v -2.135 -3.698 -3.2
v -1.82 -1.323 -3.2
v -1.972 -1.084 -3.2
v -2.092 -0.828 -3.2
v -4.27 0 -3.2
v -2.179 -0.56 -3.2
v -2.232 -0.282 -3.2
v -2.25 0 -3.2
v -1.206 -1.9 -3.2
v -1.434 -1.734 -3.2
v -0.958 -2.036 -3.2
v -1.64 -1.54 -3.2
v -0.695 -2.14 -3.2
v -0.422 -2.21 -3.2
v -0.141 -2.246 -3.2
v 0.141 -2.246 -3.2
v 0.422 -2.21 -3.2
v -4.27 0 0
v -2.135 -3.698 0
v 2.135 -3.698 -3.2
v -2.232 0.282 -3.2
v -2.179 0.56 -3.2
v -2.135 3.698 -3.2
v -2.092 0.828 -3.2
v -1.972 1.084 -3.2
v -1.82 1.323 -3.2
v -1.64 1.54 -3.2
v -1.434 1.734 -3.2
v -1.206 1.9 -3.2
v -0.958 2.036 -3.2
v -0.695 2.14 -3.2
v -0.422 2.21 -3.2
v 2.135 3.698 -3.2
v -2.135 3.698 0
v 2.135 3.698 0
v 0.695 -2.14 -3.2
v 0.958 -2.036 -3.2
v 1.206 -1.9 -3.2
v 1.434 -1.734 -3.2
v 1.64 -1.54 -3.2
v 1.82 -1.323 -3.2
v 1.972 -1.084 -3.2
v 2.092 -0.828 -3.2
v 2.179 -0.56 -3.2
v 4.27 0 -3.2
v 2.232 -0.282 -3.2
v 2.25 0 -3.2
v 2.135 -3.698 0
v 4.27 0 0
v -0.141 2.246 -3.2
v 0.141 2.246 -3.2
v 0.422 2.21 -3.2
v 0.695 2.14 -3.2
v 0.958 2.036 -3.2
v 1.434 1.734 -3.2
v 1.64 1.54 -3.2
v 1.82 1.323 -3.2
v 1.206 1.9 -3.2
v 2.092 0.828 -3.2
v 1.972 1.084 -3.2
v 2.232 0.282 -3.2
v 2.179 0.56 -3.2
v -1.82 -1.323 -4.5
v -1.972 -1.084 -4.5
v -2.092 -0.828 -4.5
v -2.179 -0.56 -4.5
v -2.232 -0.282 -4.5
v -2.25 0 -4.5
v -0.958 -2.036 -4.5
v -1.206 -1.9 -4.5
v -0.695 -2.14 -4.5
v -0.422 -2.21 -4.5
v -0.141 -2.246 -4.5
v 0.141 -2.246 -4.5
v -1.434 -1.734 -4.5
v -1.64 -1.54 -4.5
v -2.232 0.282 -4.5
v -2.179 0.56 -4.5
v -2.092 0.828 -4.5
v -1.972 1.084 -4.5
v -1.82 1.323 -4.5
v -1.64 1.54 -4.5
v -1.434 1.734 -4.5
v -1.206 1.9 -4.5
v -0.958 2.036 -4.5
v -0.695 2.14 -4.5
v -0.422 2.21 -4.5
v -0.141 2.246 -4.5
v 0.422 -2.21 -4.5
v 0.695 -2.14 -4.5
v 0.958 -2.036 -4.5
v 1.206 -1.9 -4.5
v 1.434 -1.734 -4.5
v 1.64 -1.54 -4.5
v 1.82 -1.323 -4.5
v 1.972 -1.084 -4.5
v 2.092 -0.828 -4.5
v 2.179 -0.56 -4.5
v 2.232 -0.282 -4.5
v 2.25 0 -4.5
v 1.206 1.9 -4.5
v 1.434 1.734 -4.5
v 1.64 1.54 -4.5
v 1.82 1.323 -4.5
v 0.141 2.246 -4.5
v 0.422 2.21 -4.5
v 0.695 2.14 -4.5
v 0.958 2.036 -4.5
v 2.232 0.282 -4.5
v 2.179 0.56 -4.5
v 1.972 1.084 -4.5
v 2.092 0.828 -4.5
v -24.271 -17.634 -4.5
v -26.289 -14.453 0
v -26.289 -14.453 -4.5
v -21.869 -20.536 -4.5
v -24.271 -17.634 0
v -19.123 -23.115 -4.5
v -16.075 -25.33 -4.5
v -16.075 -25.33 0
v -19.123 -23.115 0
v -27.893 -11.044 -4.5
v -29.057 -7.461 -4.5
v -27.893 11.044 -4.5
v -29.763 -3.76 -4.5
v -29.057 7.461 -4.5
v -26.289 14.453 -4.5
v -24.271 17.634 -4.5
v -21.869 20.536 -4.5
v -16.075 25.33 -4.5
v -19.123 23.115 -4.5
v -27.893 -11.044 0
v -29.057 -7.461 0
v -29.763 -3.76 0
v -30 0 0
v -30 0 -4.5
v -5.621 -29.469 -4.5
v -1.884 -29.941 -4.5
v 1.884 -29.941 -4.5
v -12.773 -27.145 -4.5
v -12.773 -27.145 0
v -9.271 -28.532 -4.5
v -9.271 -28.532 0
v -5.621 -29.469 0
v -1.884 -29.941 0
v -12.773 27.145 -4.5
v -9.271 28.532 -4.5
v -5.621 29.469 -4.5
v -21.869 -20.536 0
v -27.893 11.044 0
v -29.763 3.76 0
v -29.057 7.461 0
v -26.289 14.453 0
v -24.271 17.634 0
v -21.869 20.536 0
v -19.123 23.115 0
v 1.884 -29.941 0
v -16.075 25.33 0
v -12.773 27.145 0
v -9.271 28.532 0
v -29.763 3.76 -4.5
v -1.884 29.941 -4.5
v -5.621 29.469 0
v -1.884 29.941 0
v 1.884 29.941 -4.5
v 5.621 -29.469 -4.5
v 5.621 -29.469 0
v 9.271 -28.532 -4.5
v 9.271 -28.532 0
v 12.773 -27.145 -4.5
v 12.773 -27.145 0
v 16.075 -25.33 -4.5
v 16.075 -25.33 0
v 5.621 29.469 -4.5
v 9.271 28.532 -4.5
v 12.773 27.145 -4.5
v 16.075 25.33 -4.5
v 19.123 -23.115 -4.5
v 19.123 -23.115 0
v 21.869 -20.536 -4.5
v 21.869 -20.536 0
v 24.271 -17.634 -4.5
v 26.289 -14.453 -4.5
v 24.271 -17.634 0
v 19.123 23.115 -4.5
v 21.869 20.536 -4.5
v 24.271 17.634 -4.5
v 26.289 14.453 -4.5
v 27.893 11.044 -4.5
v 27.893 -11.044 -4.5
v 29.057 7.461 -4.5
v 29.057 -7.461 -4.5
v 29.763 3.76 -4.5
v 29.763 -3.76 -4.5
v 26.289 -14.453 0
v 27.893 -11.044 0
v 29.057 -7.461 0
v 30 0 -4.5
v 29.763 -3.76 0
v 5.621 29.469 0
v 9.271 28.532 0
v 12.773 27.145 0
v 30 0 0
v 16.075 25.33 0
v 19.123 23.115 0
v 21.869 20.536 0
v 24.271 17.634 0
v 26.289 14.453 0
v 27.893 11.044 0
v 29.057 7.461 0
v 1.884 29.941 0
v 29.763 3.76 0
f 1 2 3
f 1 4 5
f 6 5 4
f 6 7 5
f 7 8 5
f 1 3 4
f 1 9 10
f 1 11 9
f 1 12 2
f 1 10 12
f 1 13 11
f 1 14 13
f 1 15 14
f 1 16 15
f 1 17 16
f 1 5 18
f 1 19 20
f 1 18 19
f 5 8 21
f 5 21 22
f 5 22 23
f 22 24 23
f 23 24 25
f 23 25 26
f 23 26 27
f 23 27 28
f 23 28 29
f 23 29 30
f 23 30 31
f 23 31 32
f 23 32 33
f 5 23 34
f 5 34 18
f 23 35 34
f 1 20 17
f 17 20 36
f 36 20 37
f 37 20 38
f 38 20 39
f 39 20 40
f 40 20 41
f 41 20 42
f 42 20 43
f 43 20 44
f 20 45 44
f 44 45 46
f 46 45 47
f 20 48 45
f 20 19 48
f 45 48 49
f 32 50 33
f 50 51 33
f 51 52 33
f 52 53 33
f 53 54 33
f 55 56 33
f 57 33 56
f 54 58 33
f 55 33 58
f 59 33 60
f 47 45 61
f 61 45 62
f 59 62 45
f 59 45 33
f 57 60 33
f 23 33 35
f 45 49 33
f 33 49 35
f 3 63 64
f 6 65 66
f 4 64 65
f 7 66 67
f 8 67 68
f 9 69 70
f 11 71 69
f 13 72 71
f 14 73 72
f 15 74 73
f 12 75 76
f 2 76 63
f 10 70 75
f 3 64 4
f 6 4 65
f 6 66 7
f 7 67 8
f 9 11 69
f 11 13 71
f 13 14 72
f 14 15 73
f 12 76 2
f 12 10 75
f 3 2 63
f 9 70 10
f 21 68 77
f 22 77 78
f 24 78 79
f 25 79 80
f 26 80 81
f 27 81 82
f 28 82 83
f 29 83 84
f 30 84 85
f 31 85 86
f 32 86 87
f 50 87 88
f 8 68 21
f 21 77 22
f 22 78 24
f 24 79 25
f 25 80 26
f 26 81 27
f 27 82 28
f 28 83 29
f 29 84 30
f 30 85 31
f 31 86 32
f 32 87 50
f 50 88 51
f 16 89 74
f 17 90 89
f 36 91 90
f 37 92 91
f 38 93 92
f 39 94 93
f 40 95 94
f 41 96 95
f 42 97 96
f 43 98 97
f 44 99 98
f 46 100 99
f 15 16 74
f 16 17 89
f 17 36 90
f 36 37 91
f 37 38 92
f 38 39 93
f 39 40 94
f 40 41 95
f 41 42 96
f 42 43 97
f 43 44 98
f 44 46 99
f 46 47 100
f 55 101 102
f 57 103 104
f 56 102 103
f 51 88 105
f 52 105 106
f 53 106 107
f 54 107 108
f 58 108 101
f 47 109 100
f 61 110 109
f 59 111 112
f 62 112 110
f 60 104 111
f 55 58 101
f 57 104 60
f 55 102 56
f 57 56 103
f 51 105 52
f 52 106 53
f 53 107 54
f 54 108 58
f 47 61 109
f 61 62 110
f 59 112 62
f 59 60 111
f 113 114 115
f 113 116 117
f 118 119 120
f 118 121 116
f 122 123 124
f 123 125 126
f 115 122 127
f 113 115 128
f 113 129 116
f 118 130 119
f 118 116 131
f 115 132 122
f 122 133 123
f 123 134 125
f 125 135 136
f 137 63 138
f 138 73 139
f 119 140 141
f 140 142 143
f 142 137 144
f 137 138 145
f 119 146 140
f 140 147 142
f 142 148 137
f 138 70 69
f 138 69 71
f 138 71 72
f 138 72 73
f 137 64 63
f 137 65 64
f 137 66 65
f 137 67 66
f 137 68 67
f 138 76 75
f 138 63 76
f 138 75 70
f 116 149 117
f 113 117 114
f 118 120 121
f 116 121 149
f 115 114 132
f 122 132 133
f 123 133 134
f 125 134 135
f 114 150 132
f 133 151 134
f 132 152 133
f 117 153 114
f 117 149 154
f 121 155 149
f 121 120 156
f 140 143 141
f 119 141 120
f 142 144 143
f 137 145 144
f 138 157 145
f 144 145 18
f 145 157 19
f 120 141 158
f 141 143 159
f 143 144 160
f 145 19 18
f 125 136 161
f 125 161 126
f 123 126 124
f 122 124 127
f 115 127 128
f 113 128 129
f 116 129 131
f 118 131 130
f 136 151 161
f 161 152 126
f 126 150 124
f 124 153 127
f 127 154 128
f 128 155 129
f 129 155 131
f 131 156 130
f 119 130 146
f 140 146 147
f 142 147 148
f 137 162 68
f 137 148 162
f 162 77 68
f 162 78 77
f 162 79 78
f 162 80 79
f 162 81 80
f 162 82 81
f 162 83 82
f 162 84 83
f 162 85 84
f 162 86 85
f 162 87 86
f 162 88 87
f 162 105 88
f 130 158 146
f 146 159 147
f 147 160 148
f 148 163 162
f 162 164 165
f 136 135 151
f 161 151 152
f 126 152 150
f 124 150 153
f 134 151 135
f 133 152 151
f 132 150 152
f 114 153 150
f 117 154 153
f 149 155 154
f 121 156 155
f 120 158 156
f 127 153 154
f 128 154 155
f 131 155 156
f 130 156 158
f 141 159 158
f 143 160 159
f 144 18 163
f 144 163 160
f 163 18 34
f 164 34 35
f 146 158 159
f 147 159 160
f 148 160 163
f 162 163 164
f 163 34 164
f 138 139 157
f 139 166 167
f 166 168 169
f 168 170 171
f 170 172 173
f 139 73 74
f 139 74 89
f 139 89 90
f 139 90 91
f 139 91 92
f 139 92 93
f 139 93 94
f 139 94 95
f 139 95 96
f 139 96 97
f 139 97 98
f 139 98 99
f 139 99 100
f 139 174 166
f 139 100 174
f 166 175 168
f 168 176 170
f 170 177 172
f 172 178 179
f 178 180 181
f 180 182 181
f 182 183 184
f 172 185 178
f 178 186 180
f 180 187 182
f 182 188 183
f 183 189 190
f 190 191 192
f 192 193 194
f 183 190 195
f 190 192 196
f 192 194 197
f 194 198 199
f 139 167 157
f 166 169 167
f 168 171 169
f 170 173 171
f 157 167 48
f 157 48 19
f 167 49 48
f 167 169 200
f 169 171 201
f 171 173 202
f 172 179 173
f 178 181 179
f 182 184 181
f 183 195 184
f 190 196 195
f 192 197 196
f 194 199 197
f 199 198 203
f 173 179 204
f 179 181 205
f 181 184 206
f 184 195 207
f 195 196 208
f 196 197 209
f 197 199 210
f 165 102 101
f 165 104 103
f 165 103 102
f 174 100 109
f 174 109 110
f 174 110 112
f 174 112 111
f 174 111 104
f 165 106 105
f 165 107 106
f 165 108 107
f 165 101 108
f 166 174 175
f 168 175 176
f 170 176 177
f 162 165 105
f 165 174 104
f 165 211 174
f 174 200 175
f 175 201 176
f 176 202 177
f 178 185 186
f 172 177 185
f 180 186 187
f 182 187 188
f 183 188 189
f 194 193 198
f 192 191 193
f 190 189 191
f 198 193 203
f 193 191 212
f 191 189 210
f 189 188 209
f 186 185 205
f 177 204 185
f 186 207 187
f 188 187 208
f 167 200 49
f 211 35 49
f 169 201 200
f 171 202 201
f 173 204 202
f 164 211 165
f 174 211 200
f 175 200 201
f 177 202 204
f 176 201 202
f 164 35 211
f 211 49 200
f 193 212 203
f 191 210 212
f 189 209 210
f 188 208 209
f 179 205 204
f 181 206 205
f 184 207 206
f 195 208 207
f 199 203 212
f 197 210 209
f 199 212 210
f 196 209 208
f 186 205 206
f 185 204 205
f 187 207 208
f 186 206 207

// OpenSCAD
$fn = 50;

difference() {
	union() {
		translate(v = [0, 0, -4.5]) {
			cylinder(h = 4.5, r = 30.0);
		}
	}
	union() {
		translate(v = [0, 0, 0]) {
			rotate(a = [0, 0, 0]) {
				difference() {
					union() {
						translate(v = [0, 0, -3.2]) {
							linear_extrude(height = 3.2) {
								polygon(points = [[4.2698, 0.0], [2.1349000000000005, 3.697755269078796], [-2.134899999999999, 3.6977552690787965], [-4.2698, 5.228996902999369e-16], [-2.134900000000002, -3.6977552690787956], [2.1348999999999974, -3.697755269078798]]);
							}
						}
					}
					union();
				}
			}
		}
		#translate(v = [0, 0, -100.0]) {
			cylinder(h = 200, r = 2.25);
		}
	}
}
